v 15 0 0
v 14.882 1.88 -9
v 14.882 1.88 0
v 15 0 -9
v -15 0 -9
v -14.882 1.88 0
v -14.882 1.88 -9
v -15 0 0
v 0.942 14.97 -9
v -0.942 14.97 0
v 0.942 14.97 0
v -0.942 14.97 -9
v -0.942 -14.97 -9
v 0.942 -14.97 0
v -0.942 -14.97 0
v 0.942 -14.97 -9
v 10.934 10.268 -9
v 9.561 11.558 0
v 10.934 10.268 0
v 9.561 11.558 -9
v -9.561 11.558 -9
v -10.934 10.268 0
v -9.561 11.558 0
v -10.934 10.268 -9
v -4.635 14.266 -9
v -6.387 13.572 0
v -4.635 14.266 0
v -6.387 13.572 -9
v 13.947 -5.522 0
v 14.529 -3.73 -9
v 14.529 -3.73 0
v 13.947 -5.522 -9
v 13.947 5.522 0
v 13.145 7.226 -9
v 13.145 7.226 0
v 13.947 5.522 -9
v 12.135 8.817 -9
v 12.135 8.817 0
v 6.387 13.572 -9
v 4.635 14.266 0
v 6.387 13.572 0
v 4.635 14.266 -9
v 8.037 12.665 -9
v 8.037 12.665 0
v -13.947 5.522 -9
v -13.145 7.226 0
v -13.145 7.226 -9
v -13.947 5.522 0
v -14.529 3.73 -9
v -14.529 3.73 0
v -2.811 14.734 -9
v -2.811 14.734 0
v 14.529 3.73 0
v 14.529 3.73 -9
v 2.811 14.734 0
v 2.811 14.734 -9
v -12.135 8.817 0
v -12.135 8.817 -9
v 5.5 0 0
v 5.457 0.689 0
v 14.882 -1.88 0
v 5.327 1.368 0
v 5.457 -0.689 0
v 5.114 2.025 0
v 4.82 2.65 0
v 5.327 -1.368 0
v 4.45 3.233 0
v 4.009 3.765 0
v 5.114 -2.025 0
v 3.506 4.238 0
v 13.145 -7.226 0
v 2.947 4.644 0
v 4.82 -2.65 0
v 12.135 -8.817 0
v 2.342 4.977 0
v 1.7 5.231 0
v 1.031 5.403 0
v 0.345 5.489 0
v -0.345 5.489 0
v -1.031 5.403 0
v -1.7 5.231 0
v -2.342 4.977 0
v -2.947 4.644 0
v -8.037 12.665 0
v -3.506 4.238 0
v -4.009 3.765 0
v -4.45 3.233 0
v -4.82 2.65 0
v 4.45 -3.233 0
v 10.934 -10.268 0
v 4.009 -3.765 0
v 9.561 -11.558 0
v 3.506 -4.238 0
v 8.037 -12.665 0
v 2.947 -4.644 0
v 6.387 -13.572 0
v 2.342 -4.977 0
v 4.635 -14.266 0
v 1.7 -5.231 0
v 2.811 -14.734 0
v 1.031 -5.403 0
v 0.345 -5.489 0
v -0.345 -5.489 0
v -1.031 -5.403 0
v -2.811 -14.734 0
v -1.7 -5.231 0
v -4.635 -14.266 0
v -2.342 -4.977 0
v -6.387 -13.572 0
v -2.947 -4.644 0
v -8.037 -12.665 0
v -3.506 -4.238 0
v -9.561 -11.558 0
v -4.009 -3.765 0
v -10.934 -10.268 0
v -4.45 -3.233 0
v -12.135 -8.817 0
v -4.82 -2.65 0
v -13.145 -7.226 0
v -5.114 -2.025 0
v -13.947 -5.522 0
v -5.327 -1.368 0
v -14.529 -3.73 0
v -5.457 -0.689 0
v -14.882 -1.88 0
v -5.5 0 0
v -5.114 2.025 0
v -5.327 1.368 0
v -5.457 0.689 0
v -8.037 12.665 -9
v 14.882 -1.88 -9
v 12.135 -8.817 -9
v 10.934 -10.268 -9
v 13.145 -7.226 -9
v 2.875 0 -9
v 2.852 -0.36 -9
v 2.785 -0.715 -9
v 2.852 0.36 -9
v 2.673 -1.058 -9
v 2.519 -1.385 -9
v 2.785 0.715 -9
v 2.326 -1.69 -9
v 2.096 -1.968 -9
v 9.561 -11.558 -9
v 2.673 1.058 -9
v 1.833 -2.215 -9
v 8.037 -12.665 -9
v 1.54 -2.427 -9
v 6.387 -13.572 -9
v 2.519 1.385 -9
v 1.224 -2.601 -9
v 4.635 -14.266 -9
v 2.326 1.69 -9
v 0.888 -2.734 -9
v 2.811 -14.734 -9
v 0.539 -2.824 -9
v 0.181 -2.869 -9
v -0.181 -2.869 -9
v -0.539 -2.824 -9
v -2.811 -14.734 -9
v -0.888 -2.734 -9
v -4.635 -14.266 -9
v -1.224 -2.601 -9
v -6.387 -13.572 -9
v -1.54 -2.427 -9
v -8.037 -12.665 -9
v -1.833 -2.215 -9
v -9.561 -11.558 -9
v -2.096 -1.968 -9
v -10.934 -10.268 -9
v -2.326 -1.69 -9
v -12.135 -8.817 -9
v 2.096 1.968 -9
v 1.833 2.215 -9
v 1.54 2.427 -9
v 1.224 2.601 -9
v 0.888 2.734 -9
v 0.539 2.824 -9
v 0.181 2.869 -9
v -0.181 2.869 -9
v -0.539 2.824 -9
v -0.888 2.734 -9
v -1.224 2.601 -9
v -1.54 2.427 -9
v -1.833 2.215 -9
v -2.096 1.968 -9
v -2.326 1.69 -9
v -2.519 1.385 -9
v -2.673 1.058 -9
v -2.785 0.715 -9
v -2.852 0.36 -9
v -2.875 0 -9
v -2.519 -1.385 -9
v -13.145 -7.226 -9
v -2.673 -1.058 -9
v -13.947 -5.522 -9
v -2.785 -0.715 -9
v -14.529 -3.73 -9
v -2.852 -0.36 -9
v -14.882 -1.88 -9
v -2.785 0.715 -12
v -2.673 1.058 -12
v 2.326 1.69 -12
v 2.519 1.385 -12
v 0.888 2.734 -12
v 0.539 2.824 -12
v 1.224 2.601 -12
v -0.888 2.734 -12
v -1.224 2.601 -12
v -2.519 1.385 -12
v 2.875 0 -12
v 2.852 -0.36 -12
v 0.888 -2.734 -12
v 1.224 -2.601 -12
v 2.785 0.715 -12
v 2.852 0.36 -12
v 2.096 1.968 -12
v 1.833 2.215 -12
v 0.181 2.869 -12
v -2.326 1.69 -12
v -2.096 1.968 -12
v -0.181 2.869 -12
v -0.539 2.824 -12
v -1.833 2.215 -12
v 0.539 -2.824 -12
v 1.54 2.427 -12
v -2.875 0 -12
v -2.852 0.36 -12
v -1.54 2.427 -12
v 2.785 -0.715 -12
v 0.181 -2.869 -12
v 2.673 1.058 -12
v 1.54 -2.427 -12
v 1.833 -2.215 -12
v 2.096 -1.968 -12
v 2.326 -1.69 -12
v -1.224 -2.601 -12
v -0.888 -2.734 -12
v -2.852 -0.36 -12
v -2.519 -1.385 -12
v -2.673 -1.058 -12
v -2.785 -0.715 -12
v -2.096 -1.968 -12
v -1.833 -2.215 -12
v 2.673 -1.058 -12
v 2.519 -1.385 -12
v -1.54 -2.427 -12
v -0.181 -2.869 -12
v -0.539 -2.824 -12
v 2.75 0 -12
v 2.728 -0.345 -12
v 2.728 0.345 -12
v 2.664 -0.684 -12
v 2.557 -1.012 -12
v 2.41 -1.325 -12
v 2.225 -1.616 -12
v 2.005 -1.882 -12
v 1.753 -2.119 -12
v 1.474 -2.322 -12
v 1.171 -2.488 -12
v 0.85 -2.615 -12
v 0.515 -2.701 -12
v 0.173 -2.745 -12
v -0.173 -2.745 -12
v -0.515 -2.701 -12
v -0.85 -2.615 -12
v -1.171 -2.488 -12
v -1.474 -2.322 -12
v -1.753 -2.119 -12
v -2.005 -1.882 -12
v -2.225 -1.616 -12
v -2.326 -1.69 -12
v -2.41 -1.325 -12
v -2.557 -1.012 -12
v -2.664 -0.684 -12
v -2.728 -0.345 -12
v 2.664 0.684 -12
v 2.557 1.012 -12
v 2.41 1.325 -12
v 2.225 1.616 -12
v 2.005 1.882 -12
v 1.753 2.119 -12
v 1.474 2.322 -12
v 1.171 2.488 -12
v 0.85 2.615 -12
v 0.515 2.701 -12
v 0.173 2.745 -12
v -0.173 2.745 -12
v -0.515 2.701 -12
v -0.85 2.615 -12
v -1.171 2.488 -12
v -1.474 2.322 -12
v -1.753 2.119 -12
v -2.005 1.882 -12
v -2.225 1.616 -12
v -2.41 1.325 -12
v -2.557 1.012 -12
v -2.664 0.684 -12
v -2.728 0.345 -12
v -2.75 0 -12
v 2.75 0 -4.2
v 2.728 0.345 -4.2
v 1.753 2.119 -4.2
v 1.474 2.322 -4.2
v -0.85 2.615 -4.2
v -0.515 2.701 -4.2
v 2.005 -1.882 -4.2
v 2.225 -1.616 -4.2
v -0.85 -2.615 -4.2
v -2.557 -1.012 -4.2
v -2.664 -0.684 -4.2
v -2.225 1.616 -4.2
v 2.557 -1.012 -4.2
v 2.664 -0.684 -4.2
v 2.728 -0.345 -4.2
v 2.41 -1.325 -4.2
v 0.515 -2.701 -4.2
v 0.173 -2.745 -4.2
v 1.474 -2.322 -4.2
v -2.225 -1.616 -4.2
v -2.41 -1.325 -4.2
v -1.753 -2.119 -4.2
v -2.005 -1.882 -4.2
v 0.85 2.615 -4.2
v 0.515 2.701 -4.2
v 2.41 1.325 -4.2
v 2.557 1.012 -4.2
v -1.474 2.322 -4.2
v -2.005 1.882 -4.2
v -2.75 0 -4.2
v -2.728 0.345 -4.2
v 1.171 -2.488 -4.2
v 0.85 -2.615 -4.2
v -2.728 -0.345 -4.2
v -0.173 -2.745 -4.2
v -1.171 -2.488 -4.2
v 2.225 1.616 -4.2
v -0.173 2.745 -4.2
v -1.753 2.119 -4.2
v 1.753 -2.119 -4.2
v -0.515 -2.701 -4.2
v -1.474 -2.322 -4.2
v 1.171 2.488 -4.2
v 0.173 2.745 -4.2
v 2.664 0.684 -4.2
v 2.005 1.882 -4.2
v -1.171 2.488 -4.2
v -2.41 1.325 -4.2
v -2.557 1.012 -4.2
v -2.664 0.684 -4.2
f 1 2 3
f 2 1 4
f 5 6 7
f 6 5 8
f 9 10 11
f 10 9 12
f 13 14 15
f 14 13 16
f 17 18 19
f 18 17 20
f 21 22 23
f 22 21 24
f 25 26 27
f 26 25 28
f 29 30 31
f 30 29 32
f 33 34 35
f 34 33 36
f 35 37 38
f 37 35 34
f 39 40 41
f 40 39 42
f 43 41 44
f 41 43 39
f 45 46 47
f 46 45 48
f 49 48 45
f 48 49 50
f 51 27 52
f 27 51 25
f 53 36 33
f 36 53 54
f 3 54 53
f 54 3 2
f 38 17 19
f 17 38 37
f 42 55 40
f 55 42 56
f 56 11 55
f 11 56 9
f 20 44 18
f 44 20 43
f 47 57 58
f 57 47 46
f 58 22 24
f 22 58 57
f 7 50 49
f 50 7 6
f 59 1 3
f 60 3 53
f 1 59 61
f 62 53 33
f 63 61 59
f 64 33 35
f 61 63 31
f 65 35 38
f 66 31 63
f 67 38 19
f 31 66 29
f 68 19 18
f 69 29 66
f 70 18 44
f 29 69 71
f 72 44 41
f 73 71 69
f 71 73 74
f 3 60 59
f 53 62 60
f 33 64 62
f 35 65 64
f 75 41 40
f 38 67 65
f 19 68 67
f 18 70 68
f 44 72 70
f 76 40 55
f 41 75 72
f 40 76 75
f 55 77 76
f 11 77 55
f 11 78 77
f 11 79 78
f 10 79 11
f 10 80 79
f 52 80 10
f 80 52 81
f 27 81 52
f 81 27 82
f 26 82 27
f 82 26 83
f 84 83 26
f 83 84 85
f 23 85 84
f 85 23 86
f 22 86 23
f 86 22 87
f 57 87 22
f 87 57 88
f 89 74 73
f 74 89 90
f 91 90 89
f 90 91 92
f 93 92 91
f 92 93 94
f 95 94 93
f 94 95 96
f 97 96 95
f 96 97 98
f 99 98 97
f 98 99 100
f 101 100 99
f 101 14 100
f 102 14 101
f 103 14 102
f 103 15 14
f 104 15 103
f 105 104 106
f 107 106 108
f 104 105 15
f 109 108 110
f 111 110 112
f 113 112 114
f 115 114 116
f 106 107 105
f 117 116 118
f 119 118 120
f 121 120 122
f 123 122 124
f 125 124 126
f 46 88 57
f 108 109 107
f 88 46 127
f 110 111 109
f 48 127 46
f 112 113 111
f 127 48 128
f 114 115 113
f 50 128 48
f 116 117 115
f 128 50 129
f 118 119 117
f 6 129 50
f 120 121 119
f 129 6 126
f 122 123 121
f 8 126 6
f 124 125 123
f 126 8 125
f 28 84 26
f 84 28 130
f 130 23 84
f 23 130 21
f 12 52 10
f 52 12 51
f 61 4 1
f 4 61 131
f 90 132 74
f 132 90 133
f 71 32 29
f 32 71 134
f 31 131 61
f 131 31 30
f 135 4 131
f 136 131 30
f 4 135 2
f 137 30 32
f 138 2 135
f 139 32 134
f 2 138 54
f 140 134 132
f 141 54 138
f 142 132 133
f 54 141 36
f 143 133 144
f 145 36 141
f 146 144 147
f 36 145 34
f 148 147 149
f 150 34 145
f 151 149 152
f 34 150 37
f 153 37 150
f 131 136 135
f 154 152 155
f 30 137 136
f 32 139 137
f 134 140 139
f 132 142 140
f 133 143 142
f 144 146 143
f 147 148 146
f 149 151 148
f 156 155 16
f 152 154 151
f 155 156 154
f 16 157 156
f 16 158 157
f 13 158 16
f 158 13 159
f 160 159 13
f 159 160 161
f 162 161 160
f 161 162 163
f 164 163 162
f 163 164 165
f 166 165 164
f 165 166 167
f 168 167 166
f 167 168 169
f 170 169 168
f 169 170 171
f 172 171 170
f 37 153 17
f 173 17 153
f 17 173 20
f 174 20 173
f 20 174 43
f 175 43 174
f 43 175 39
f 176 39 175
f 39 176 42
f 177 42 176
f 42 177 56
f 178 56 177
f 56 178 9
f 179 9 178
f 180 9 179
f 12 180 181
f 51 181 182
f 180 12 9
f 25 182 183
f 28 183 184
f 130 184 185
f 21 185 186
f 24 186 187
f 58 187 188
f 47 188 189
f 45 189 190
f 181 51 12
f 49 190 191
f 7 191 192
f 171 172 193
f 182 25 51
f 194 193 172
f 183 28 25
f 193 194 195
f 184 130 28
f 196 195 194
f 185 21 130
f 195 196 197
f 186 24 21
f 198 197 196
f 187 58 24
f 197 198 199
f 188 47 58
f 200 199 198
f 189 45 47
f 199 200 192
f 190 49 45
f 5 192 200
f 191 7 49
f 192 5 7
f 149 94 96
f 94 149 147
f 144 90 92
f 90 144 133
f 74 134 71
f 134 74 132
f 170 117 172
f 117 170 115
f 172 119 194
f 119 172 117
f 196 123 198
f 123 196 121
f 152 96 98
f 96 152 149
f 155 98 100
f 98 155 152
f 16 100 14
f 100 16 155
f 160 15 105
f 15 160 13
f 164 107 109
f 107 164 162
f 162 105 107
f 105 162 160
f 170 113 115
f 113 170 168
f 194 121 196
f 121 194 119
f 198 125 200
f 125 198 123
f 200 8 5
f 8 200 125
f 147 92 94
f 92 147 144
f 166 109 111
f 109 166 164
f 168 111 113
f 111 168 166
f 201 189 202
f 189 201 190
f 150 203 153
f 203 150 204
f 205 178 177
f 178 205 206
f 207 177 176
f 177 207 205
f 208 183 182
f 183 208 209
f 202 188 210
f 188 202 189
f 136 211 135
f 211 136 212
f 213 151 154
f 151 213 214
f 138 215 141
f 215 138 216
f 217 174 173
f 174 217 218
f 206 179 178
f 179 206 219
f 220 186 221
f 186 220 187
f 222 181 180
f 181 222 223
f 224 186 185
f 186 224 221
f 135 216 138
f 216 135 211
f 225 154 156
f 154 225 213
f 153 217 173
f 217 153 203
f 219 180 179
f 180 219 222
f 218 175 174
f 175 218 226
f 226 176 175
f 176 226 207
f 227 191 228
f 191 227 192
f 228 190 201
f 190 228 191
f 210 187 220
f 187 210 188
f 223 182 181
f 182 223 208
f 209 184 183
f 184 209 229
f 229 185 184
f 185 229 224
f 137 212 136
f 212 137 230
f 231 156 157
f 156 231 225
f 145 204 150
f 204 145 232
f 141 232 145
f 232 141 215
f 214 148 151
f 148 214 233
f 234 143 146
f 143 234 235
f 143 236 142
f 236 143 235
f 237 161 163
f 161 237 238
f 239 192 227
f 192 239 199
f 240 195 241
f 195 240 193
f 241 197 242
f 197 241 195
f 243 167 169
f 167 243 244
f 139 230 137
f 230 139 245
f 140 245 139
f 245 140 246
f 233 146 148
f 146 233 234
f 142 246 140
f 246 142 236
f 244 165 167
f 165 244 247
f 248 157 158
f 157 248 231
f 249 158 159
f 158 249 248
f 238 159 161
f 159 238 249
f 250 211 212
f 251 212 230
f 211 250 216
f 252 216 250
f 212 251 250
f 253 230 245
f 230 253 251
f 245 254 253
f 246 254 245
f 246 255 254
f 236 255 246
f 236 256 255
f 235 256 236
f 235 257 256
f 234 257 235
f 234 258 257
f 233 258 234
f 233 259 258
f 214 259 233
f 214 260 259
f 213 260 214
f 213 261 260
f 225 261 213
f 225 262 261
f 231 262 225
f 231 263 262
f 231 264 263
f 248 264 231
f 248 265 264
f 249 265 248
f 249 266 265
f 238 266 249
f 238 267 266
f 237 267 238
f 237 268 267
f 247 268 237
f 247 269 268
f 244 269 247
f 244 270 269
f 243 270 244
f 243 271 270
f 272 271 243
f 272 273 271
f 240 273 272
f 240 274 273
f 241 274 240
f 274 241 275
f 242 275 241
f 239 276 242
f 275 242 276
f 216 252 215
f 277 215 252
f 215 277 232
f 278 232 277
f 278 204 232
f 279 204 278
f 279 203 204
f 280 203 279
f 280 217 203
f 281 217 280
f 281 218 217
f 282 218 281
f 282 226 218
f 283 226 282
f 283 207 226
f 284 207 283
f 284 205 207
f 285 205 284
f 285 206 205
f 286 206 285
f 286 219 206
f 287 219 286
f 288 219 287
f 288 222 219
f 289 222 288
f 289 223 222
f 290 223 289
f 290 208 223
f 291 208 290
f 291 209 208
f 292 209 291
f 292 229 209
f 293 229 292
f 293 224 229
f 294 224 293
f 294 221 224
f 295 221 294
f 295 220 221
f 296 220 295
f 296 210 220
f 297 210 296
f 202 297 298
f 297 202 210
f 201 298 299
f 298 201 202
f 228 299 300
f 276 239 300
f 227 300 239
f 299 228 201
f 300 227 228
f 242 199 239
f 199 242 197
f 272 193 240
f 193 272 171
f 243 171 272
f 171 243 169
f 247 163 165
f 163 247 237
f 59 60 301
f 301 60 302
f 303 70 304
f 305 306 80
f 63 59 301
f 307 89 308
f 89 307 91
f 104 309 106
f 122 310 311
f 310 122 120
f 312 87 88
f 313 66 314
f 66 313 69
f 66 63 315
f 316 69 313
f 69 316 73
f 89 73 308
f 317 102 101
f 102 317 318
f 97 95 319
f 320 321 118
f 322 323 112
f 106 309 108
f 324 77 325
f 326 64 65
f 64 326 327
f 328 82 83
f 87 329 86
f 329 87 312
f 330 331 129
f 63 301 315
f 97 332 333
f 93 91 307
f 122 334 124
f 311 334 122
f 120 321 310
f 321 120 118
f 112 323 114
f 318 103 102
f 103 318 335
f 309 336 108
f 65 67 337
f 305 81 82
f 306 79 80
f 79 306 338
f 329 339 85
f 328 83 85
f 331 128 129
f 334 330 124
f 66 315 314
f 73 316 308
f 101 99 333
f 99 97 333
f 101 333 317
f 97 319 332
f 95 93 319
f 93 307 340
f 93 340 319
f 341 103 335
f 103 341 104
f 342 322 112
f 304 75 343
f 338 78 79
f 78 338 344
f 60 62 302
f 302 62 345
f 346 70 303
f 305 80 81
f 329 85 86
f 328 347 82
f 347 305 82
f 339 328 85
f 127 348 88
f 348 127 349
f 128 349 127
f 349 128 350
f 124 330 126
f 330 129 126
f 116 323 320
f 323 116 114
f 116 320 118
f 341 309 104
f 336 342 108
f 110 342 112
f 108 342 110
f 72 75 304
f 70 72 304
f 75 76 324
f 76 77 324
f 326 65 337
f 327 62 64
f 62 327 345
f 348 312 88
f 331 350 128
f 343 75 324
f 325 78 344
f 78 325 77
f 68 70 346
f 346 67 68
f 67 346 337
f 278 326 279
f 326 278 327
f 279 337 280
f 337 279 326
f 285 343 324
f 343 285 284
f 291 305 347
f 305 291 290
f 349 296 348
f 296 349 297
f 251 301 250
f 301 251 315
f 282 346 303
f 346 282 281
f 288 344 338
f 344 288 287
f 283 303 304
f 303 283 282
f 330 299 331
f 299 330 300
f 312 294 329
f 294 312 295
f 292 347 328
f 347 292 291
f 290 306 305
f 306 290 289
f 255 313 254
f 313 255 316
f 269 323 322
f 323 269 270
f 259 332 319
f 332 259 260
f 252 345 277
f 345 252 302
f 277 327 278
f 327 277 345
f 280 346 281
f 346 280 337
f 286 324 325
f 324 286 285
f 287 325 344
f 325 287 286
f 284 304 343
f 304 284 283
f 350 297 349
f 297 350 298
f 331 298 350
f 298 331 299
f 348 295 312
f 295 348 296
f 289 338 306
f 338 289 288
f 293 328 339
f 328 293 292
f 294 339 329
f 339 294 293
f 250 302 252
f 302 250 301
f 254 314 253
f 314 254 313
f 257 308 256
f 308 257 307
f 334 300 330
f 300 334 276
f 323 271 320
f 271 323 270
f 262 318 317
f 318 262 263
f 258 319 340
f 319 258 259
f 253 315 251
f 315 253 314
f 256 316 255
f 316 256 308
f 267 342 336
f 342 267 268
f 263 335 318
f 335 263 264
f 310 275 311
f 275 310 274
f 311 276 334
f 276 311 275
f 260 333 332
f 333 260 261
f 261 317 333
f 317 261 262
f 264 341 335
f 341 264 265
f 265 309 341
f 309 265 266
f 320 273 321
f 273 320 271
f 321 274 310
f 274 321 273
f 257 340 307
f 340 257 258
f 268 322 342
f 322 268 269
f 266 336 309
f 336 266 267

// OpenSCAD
$fn = 50;

difference() {
	union() {
		translate(v = [0, 0, -9.0]) {
			cylinder(h = 9, r = 15.0);
		}
		#translate(v = [0, 0, -12.0]) {
			cylinder(h = 12, r = 2.875);
		}
	}
	union() {
		translate(v = [0, 0, 0]) {
			rotate(a = [0, 0, 0]) {
				difference() {
					union() {
						translate(v = [0, 0, -12.0]) {
							cylinder(h = 12, r = 2.25);
						}
						translate(v = [0, 0, -4.2]) {
							cylinder(h = 4.2, r1 = 2.75, r2 = 5.5);
						}
						translate(v = [0, 0, -12.0]) {
							cylinder(h = 12, r = 2.75);
						}
						translate(v = [0, 0, -12.0]) {
							cylinder(h = 12, r = 2.25);
						}
					}
					union();
				}
			}
		}
	}
}
